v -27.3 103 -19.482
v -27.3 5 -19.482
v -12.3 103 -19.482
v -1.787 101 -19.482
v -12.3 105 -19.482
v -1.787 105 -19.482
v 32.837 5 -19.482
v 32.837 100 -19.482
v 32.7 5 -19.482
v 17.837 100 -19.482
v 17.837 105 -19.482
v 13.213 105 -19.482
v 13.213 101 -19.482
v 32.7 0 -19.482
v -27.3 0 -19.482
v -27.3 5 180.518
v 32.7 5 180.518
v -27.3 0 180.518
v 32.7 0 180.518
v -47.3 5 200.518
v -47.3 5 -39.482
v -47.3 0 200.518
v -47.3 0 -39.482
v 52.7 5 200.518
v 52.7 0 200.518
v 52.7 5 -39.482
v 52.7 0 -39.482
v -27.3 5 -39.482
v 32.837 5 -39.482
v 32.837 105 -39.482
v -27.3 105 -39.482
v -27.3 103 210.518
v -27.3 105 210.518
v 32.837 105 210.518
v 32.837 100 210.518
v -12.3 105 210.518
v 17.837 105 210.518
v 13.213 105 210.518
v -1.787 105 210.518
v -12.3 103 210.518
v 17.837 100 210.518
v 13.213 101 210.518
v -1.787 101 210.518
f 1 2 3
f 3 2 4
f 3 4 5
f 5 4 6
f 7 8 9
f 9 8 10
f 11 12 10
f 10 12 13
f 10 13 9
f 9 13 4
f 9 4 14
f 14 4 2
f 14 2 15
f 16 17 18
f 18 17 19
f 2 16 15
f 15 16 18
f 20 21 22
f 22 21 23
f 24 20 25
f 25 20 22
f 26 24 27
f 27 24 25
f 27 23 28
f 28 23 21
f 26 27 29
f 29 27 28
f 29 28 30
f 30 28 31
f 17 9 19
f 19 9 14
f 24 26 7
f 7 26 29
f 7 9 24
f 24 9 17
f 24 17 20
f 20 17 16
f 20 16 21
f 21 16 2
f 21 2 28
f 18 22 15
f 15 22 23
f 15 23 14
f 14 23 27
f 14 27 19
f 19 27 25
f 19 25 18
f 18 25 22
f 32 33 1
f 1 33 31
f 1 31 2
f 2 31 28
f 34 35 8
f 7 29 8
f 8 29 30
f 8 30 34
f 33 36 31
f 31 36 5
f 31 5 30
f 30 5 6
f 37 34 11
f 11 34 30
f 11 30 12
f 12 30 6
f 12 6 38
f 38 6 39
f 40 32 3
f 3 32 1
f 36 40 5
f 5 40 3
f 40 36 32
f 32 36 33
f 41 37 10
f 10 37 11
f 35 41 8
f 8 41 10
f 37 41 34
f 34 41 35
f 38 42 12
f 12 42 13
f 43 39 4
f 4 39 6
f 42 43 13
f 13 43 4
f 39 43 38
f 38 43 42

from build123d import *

# Parameters (mm, degrees)
SKETCH1_W           = 20
SKETCH1_H           = 20
BOSS_EXTRUDE1_DEPTH = 5
SKETCH2_W           = 60.136694628
SKETCH2_H           = 20
BOSS_EXTRUDE2_DEPTH = 100
SKETCH3_W           = 15
SKETCH3_H           = 2
SKETCH3_H_2         = 5
SKETCH3_H_3         = 4
BOSS_EXTRUDE3_DEPTH = 230


with BuildPart() as part:
    # Sketch1 → Boss-Extrude1 (new body)
    with BuildSketch(Plane(origin=(0, 0, 0), x_dir=(1, 0, 0), z_dir=(0, 1, 0))):
        Polygon((52.700369914, 19.481718454), (32.700369914, 19.481718454), (32.700369914, -180.518281546), (-27.299630086, -180.518281546), (-27.299630086, -200.518281546), (52.700369914, -200.518281546), align=None)
        Polygon((-27.299630086, 19.481718454), (32.700369914, 19.481718454), (52.700369914, 19.481718454), (52.700369914, 39.481718454), (-47.299630086, 39.481718454), (-47.299630086, -180.518281546), (-27.299630086, -180.518281546), align=None)
        with Locations((-37.299630086, -190.518281546)):
            Rectangle(SKETCH1_W, SKETCH1_H)
    extrude(amount=BOSS_EXTRUDE1_DEPTH)

    # Sketch2 → Boss-Extrude2 (add)
    with BuildSketch(Plane(origin=(0, 5, 0), x_dir=(1, 0, 0), z_dir=(0, 1, 0))):
        with Locations((2.768717228, 29.481718454)):
            Rectangle(SKETCH2_W, SKETCH2_H)
    extrude(amount=BOSS_EXTRUDE2_DEPTH)

    # Sketch3 → Boss-Extrude3 (add)
    with BuildSketch(Plane.XY.offset(-19.481718454)):
        with Locations((-19.799630086, 104)):
            Rectangle(SKETCH3_W, SKETCH3_H)
        with Locations((25.337064542, 102.5)):
            Rectangle(SKETCH3_W, SKETCH3_H_2)
        with Locations((5.71340039, 103)):
            Rectangle(SKETCH3_W, SKETCH3_H_3)
    extrude(amount=BOSS_EXTRUDE3_DEPTH)


solid = part.part
